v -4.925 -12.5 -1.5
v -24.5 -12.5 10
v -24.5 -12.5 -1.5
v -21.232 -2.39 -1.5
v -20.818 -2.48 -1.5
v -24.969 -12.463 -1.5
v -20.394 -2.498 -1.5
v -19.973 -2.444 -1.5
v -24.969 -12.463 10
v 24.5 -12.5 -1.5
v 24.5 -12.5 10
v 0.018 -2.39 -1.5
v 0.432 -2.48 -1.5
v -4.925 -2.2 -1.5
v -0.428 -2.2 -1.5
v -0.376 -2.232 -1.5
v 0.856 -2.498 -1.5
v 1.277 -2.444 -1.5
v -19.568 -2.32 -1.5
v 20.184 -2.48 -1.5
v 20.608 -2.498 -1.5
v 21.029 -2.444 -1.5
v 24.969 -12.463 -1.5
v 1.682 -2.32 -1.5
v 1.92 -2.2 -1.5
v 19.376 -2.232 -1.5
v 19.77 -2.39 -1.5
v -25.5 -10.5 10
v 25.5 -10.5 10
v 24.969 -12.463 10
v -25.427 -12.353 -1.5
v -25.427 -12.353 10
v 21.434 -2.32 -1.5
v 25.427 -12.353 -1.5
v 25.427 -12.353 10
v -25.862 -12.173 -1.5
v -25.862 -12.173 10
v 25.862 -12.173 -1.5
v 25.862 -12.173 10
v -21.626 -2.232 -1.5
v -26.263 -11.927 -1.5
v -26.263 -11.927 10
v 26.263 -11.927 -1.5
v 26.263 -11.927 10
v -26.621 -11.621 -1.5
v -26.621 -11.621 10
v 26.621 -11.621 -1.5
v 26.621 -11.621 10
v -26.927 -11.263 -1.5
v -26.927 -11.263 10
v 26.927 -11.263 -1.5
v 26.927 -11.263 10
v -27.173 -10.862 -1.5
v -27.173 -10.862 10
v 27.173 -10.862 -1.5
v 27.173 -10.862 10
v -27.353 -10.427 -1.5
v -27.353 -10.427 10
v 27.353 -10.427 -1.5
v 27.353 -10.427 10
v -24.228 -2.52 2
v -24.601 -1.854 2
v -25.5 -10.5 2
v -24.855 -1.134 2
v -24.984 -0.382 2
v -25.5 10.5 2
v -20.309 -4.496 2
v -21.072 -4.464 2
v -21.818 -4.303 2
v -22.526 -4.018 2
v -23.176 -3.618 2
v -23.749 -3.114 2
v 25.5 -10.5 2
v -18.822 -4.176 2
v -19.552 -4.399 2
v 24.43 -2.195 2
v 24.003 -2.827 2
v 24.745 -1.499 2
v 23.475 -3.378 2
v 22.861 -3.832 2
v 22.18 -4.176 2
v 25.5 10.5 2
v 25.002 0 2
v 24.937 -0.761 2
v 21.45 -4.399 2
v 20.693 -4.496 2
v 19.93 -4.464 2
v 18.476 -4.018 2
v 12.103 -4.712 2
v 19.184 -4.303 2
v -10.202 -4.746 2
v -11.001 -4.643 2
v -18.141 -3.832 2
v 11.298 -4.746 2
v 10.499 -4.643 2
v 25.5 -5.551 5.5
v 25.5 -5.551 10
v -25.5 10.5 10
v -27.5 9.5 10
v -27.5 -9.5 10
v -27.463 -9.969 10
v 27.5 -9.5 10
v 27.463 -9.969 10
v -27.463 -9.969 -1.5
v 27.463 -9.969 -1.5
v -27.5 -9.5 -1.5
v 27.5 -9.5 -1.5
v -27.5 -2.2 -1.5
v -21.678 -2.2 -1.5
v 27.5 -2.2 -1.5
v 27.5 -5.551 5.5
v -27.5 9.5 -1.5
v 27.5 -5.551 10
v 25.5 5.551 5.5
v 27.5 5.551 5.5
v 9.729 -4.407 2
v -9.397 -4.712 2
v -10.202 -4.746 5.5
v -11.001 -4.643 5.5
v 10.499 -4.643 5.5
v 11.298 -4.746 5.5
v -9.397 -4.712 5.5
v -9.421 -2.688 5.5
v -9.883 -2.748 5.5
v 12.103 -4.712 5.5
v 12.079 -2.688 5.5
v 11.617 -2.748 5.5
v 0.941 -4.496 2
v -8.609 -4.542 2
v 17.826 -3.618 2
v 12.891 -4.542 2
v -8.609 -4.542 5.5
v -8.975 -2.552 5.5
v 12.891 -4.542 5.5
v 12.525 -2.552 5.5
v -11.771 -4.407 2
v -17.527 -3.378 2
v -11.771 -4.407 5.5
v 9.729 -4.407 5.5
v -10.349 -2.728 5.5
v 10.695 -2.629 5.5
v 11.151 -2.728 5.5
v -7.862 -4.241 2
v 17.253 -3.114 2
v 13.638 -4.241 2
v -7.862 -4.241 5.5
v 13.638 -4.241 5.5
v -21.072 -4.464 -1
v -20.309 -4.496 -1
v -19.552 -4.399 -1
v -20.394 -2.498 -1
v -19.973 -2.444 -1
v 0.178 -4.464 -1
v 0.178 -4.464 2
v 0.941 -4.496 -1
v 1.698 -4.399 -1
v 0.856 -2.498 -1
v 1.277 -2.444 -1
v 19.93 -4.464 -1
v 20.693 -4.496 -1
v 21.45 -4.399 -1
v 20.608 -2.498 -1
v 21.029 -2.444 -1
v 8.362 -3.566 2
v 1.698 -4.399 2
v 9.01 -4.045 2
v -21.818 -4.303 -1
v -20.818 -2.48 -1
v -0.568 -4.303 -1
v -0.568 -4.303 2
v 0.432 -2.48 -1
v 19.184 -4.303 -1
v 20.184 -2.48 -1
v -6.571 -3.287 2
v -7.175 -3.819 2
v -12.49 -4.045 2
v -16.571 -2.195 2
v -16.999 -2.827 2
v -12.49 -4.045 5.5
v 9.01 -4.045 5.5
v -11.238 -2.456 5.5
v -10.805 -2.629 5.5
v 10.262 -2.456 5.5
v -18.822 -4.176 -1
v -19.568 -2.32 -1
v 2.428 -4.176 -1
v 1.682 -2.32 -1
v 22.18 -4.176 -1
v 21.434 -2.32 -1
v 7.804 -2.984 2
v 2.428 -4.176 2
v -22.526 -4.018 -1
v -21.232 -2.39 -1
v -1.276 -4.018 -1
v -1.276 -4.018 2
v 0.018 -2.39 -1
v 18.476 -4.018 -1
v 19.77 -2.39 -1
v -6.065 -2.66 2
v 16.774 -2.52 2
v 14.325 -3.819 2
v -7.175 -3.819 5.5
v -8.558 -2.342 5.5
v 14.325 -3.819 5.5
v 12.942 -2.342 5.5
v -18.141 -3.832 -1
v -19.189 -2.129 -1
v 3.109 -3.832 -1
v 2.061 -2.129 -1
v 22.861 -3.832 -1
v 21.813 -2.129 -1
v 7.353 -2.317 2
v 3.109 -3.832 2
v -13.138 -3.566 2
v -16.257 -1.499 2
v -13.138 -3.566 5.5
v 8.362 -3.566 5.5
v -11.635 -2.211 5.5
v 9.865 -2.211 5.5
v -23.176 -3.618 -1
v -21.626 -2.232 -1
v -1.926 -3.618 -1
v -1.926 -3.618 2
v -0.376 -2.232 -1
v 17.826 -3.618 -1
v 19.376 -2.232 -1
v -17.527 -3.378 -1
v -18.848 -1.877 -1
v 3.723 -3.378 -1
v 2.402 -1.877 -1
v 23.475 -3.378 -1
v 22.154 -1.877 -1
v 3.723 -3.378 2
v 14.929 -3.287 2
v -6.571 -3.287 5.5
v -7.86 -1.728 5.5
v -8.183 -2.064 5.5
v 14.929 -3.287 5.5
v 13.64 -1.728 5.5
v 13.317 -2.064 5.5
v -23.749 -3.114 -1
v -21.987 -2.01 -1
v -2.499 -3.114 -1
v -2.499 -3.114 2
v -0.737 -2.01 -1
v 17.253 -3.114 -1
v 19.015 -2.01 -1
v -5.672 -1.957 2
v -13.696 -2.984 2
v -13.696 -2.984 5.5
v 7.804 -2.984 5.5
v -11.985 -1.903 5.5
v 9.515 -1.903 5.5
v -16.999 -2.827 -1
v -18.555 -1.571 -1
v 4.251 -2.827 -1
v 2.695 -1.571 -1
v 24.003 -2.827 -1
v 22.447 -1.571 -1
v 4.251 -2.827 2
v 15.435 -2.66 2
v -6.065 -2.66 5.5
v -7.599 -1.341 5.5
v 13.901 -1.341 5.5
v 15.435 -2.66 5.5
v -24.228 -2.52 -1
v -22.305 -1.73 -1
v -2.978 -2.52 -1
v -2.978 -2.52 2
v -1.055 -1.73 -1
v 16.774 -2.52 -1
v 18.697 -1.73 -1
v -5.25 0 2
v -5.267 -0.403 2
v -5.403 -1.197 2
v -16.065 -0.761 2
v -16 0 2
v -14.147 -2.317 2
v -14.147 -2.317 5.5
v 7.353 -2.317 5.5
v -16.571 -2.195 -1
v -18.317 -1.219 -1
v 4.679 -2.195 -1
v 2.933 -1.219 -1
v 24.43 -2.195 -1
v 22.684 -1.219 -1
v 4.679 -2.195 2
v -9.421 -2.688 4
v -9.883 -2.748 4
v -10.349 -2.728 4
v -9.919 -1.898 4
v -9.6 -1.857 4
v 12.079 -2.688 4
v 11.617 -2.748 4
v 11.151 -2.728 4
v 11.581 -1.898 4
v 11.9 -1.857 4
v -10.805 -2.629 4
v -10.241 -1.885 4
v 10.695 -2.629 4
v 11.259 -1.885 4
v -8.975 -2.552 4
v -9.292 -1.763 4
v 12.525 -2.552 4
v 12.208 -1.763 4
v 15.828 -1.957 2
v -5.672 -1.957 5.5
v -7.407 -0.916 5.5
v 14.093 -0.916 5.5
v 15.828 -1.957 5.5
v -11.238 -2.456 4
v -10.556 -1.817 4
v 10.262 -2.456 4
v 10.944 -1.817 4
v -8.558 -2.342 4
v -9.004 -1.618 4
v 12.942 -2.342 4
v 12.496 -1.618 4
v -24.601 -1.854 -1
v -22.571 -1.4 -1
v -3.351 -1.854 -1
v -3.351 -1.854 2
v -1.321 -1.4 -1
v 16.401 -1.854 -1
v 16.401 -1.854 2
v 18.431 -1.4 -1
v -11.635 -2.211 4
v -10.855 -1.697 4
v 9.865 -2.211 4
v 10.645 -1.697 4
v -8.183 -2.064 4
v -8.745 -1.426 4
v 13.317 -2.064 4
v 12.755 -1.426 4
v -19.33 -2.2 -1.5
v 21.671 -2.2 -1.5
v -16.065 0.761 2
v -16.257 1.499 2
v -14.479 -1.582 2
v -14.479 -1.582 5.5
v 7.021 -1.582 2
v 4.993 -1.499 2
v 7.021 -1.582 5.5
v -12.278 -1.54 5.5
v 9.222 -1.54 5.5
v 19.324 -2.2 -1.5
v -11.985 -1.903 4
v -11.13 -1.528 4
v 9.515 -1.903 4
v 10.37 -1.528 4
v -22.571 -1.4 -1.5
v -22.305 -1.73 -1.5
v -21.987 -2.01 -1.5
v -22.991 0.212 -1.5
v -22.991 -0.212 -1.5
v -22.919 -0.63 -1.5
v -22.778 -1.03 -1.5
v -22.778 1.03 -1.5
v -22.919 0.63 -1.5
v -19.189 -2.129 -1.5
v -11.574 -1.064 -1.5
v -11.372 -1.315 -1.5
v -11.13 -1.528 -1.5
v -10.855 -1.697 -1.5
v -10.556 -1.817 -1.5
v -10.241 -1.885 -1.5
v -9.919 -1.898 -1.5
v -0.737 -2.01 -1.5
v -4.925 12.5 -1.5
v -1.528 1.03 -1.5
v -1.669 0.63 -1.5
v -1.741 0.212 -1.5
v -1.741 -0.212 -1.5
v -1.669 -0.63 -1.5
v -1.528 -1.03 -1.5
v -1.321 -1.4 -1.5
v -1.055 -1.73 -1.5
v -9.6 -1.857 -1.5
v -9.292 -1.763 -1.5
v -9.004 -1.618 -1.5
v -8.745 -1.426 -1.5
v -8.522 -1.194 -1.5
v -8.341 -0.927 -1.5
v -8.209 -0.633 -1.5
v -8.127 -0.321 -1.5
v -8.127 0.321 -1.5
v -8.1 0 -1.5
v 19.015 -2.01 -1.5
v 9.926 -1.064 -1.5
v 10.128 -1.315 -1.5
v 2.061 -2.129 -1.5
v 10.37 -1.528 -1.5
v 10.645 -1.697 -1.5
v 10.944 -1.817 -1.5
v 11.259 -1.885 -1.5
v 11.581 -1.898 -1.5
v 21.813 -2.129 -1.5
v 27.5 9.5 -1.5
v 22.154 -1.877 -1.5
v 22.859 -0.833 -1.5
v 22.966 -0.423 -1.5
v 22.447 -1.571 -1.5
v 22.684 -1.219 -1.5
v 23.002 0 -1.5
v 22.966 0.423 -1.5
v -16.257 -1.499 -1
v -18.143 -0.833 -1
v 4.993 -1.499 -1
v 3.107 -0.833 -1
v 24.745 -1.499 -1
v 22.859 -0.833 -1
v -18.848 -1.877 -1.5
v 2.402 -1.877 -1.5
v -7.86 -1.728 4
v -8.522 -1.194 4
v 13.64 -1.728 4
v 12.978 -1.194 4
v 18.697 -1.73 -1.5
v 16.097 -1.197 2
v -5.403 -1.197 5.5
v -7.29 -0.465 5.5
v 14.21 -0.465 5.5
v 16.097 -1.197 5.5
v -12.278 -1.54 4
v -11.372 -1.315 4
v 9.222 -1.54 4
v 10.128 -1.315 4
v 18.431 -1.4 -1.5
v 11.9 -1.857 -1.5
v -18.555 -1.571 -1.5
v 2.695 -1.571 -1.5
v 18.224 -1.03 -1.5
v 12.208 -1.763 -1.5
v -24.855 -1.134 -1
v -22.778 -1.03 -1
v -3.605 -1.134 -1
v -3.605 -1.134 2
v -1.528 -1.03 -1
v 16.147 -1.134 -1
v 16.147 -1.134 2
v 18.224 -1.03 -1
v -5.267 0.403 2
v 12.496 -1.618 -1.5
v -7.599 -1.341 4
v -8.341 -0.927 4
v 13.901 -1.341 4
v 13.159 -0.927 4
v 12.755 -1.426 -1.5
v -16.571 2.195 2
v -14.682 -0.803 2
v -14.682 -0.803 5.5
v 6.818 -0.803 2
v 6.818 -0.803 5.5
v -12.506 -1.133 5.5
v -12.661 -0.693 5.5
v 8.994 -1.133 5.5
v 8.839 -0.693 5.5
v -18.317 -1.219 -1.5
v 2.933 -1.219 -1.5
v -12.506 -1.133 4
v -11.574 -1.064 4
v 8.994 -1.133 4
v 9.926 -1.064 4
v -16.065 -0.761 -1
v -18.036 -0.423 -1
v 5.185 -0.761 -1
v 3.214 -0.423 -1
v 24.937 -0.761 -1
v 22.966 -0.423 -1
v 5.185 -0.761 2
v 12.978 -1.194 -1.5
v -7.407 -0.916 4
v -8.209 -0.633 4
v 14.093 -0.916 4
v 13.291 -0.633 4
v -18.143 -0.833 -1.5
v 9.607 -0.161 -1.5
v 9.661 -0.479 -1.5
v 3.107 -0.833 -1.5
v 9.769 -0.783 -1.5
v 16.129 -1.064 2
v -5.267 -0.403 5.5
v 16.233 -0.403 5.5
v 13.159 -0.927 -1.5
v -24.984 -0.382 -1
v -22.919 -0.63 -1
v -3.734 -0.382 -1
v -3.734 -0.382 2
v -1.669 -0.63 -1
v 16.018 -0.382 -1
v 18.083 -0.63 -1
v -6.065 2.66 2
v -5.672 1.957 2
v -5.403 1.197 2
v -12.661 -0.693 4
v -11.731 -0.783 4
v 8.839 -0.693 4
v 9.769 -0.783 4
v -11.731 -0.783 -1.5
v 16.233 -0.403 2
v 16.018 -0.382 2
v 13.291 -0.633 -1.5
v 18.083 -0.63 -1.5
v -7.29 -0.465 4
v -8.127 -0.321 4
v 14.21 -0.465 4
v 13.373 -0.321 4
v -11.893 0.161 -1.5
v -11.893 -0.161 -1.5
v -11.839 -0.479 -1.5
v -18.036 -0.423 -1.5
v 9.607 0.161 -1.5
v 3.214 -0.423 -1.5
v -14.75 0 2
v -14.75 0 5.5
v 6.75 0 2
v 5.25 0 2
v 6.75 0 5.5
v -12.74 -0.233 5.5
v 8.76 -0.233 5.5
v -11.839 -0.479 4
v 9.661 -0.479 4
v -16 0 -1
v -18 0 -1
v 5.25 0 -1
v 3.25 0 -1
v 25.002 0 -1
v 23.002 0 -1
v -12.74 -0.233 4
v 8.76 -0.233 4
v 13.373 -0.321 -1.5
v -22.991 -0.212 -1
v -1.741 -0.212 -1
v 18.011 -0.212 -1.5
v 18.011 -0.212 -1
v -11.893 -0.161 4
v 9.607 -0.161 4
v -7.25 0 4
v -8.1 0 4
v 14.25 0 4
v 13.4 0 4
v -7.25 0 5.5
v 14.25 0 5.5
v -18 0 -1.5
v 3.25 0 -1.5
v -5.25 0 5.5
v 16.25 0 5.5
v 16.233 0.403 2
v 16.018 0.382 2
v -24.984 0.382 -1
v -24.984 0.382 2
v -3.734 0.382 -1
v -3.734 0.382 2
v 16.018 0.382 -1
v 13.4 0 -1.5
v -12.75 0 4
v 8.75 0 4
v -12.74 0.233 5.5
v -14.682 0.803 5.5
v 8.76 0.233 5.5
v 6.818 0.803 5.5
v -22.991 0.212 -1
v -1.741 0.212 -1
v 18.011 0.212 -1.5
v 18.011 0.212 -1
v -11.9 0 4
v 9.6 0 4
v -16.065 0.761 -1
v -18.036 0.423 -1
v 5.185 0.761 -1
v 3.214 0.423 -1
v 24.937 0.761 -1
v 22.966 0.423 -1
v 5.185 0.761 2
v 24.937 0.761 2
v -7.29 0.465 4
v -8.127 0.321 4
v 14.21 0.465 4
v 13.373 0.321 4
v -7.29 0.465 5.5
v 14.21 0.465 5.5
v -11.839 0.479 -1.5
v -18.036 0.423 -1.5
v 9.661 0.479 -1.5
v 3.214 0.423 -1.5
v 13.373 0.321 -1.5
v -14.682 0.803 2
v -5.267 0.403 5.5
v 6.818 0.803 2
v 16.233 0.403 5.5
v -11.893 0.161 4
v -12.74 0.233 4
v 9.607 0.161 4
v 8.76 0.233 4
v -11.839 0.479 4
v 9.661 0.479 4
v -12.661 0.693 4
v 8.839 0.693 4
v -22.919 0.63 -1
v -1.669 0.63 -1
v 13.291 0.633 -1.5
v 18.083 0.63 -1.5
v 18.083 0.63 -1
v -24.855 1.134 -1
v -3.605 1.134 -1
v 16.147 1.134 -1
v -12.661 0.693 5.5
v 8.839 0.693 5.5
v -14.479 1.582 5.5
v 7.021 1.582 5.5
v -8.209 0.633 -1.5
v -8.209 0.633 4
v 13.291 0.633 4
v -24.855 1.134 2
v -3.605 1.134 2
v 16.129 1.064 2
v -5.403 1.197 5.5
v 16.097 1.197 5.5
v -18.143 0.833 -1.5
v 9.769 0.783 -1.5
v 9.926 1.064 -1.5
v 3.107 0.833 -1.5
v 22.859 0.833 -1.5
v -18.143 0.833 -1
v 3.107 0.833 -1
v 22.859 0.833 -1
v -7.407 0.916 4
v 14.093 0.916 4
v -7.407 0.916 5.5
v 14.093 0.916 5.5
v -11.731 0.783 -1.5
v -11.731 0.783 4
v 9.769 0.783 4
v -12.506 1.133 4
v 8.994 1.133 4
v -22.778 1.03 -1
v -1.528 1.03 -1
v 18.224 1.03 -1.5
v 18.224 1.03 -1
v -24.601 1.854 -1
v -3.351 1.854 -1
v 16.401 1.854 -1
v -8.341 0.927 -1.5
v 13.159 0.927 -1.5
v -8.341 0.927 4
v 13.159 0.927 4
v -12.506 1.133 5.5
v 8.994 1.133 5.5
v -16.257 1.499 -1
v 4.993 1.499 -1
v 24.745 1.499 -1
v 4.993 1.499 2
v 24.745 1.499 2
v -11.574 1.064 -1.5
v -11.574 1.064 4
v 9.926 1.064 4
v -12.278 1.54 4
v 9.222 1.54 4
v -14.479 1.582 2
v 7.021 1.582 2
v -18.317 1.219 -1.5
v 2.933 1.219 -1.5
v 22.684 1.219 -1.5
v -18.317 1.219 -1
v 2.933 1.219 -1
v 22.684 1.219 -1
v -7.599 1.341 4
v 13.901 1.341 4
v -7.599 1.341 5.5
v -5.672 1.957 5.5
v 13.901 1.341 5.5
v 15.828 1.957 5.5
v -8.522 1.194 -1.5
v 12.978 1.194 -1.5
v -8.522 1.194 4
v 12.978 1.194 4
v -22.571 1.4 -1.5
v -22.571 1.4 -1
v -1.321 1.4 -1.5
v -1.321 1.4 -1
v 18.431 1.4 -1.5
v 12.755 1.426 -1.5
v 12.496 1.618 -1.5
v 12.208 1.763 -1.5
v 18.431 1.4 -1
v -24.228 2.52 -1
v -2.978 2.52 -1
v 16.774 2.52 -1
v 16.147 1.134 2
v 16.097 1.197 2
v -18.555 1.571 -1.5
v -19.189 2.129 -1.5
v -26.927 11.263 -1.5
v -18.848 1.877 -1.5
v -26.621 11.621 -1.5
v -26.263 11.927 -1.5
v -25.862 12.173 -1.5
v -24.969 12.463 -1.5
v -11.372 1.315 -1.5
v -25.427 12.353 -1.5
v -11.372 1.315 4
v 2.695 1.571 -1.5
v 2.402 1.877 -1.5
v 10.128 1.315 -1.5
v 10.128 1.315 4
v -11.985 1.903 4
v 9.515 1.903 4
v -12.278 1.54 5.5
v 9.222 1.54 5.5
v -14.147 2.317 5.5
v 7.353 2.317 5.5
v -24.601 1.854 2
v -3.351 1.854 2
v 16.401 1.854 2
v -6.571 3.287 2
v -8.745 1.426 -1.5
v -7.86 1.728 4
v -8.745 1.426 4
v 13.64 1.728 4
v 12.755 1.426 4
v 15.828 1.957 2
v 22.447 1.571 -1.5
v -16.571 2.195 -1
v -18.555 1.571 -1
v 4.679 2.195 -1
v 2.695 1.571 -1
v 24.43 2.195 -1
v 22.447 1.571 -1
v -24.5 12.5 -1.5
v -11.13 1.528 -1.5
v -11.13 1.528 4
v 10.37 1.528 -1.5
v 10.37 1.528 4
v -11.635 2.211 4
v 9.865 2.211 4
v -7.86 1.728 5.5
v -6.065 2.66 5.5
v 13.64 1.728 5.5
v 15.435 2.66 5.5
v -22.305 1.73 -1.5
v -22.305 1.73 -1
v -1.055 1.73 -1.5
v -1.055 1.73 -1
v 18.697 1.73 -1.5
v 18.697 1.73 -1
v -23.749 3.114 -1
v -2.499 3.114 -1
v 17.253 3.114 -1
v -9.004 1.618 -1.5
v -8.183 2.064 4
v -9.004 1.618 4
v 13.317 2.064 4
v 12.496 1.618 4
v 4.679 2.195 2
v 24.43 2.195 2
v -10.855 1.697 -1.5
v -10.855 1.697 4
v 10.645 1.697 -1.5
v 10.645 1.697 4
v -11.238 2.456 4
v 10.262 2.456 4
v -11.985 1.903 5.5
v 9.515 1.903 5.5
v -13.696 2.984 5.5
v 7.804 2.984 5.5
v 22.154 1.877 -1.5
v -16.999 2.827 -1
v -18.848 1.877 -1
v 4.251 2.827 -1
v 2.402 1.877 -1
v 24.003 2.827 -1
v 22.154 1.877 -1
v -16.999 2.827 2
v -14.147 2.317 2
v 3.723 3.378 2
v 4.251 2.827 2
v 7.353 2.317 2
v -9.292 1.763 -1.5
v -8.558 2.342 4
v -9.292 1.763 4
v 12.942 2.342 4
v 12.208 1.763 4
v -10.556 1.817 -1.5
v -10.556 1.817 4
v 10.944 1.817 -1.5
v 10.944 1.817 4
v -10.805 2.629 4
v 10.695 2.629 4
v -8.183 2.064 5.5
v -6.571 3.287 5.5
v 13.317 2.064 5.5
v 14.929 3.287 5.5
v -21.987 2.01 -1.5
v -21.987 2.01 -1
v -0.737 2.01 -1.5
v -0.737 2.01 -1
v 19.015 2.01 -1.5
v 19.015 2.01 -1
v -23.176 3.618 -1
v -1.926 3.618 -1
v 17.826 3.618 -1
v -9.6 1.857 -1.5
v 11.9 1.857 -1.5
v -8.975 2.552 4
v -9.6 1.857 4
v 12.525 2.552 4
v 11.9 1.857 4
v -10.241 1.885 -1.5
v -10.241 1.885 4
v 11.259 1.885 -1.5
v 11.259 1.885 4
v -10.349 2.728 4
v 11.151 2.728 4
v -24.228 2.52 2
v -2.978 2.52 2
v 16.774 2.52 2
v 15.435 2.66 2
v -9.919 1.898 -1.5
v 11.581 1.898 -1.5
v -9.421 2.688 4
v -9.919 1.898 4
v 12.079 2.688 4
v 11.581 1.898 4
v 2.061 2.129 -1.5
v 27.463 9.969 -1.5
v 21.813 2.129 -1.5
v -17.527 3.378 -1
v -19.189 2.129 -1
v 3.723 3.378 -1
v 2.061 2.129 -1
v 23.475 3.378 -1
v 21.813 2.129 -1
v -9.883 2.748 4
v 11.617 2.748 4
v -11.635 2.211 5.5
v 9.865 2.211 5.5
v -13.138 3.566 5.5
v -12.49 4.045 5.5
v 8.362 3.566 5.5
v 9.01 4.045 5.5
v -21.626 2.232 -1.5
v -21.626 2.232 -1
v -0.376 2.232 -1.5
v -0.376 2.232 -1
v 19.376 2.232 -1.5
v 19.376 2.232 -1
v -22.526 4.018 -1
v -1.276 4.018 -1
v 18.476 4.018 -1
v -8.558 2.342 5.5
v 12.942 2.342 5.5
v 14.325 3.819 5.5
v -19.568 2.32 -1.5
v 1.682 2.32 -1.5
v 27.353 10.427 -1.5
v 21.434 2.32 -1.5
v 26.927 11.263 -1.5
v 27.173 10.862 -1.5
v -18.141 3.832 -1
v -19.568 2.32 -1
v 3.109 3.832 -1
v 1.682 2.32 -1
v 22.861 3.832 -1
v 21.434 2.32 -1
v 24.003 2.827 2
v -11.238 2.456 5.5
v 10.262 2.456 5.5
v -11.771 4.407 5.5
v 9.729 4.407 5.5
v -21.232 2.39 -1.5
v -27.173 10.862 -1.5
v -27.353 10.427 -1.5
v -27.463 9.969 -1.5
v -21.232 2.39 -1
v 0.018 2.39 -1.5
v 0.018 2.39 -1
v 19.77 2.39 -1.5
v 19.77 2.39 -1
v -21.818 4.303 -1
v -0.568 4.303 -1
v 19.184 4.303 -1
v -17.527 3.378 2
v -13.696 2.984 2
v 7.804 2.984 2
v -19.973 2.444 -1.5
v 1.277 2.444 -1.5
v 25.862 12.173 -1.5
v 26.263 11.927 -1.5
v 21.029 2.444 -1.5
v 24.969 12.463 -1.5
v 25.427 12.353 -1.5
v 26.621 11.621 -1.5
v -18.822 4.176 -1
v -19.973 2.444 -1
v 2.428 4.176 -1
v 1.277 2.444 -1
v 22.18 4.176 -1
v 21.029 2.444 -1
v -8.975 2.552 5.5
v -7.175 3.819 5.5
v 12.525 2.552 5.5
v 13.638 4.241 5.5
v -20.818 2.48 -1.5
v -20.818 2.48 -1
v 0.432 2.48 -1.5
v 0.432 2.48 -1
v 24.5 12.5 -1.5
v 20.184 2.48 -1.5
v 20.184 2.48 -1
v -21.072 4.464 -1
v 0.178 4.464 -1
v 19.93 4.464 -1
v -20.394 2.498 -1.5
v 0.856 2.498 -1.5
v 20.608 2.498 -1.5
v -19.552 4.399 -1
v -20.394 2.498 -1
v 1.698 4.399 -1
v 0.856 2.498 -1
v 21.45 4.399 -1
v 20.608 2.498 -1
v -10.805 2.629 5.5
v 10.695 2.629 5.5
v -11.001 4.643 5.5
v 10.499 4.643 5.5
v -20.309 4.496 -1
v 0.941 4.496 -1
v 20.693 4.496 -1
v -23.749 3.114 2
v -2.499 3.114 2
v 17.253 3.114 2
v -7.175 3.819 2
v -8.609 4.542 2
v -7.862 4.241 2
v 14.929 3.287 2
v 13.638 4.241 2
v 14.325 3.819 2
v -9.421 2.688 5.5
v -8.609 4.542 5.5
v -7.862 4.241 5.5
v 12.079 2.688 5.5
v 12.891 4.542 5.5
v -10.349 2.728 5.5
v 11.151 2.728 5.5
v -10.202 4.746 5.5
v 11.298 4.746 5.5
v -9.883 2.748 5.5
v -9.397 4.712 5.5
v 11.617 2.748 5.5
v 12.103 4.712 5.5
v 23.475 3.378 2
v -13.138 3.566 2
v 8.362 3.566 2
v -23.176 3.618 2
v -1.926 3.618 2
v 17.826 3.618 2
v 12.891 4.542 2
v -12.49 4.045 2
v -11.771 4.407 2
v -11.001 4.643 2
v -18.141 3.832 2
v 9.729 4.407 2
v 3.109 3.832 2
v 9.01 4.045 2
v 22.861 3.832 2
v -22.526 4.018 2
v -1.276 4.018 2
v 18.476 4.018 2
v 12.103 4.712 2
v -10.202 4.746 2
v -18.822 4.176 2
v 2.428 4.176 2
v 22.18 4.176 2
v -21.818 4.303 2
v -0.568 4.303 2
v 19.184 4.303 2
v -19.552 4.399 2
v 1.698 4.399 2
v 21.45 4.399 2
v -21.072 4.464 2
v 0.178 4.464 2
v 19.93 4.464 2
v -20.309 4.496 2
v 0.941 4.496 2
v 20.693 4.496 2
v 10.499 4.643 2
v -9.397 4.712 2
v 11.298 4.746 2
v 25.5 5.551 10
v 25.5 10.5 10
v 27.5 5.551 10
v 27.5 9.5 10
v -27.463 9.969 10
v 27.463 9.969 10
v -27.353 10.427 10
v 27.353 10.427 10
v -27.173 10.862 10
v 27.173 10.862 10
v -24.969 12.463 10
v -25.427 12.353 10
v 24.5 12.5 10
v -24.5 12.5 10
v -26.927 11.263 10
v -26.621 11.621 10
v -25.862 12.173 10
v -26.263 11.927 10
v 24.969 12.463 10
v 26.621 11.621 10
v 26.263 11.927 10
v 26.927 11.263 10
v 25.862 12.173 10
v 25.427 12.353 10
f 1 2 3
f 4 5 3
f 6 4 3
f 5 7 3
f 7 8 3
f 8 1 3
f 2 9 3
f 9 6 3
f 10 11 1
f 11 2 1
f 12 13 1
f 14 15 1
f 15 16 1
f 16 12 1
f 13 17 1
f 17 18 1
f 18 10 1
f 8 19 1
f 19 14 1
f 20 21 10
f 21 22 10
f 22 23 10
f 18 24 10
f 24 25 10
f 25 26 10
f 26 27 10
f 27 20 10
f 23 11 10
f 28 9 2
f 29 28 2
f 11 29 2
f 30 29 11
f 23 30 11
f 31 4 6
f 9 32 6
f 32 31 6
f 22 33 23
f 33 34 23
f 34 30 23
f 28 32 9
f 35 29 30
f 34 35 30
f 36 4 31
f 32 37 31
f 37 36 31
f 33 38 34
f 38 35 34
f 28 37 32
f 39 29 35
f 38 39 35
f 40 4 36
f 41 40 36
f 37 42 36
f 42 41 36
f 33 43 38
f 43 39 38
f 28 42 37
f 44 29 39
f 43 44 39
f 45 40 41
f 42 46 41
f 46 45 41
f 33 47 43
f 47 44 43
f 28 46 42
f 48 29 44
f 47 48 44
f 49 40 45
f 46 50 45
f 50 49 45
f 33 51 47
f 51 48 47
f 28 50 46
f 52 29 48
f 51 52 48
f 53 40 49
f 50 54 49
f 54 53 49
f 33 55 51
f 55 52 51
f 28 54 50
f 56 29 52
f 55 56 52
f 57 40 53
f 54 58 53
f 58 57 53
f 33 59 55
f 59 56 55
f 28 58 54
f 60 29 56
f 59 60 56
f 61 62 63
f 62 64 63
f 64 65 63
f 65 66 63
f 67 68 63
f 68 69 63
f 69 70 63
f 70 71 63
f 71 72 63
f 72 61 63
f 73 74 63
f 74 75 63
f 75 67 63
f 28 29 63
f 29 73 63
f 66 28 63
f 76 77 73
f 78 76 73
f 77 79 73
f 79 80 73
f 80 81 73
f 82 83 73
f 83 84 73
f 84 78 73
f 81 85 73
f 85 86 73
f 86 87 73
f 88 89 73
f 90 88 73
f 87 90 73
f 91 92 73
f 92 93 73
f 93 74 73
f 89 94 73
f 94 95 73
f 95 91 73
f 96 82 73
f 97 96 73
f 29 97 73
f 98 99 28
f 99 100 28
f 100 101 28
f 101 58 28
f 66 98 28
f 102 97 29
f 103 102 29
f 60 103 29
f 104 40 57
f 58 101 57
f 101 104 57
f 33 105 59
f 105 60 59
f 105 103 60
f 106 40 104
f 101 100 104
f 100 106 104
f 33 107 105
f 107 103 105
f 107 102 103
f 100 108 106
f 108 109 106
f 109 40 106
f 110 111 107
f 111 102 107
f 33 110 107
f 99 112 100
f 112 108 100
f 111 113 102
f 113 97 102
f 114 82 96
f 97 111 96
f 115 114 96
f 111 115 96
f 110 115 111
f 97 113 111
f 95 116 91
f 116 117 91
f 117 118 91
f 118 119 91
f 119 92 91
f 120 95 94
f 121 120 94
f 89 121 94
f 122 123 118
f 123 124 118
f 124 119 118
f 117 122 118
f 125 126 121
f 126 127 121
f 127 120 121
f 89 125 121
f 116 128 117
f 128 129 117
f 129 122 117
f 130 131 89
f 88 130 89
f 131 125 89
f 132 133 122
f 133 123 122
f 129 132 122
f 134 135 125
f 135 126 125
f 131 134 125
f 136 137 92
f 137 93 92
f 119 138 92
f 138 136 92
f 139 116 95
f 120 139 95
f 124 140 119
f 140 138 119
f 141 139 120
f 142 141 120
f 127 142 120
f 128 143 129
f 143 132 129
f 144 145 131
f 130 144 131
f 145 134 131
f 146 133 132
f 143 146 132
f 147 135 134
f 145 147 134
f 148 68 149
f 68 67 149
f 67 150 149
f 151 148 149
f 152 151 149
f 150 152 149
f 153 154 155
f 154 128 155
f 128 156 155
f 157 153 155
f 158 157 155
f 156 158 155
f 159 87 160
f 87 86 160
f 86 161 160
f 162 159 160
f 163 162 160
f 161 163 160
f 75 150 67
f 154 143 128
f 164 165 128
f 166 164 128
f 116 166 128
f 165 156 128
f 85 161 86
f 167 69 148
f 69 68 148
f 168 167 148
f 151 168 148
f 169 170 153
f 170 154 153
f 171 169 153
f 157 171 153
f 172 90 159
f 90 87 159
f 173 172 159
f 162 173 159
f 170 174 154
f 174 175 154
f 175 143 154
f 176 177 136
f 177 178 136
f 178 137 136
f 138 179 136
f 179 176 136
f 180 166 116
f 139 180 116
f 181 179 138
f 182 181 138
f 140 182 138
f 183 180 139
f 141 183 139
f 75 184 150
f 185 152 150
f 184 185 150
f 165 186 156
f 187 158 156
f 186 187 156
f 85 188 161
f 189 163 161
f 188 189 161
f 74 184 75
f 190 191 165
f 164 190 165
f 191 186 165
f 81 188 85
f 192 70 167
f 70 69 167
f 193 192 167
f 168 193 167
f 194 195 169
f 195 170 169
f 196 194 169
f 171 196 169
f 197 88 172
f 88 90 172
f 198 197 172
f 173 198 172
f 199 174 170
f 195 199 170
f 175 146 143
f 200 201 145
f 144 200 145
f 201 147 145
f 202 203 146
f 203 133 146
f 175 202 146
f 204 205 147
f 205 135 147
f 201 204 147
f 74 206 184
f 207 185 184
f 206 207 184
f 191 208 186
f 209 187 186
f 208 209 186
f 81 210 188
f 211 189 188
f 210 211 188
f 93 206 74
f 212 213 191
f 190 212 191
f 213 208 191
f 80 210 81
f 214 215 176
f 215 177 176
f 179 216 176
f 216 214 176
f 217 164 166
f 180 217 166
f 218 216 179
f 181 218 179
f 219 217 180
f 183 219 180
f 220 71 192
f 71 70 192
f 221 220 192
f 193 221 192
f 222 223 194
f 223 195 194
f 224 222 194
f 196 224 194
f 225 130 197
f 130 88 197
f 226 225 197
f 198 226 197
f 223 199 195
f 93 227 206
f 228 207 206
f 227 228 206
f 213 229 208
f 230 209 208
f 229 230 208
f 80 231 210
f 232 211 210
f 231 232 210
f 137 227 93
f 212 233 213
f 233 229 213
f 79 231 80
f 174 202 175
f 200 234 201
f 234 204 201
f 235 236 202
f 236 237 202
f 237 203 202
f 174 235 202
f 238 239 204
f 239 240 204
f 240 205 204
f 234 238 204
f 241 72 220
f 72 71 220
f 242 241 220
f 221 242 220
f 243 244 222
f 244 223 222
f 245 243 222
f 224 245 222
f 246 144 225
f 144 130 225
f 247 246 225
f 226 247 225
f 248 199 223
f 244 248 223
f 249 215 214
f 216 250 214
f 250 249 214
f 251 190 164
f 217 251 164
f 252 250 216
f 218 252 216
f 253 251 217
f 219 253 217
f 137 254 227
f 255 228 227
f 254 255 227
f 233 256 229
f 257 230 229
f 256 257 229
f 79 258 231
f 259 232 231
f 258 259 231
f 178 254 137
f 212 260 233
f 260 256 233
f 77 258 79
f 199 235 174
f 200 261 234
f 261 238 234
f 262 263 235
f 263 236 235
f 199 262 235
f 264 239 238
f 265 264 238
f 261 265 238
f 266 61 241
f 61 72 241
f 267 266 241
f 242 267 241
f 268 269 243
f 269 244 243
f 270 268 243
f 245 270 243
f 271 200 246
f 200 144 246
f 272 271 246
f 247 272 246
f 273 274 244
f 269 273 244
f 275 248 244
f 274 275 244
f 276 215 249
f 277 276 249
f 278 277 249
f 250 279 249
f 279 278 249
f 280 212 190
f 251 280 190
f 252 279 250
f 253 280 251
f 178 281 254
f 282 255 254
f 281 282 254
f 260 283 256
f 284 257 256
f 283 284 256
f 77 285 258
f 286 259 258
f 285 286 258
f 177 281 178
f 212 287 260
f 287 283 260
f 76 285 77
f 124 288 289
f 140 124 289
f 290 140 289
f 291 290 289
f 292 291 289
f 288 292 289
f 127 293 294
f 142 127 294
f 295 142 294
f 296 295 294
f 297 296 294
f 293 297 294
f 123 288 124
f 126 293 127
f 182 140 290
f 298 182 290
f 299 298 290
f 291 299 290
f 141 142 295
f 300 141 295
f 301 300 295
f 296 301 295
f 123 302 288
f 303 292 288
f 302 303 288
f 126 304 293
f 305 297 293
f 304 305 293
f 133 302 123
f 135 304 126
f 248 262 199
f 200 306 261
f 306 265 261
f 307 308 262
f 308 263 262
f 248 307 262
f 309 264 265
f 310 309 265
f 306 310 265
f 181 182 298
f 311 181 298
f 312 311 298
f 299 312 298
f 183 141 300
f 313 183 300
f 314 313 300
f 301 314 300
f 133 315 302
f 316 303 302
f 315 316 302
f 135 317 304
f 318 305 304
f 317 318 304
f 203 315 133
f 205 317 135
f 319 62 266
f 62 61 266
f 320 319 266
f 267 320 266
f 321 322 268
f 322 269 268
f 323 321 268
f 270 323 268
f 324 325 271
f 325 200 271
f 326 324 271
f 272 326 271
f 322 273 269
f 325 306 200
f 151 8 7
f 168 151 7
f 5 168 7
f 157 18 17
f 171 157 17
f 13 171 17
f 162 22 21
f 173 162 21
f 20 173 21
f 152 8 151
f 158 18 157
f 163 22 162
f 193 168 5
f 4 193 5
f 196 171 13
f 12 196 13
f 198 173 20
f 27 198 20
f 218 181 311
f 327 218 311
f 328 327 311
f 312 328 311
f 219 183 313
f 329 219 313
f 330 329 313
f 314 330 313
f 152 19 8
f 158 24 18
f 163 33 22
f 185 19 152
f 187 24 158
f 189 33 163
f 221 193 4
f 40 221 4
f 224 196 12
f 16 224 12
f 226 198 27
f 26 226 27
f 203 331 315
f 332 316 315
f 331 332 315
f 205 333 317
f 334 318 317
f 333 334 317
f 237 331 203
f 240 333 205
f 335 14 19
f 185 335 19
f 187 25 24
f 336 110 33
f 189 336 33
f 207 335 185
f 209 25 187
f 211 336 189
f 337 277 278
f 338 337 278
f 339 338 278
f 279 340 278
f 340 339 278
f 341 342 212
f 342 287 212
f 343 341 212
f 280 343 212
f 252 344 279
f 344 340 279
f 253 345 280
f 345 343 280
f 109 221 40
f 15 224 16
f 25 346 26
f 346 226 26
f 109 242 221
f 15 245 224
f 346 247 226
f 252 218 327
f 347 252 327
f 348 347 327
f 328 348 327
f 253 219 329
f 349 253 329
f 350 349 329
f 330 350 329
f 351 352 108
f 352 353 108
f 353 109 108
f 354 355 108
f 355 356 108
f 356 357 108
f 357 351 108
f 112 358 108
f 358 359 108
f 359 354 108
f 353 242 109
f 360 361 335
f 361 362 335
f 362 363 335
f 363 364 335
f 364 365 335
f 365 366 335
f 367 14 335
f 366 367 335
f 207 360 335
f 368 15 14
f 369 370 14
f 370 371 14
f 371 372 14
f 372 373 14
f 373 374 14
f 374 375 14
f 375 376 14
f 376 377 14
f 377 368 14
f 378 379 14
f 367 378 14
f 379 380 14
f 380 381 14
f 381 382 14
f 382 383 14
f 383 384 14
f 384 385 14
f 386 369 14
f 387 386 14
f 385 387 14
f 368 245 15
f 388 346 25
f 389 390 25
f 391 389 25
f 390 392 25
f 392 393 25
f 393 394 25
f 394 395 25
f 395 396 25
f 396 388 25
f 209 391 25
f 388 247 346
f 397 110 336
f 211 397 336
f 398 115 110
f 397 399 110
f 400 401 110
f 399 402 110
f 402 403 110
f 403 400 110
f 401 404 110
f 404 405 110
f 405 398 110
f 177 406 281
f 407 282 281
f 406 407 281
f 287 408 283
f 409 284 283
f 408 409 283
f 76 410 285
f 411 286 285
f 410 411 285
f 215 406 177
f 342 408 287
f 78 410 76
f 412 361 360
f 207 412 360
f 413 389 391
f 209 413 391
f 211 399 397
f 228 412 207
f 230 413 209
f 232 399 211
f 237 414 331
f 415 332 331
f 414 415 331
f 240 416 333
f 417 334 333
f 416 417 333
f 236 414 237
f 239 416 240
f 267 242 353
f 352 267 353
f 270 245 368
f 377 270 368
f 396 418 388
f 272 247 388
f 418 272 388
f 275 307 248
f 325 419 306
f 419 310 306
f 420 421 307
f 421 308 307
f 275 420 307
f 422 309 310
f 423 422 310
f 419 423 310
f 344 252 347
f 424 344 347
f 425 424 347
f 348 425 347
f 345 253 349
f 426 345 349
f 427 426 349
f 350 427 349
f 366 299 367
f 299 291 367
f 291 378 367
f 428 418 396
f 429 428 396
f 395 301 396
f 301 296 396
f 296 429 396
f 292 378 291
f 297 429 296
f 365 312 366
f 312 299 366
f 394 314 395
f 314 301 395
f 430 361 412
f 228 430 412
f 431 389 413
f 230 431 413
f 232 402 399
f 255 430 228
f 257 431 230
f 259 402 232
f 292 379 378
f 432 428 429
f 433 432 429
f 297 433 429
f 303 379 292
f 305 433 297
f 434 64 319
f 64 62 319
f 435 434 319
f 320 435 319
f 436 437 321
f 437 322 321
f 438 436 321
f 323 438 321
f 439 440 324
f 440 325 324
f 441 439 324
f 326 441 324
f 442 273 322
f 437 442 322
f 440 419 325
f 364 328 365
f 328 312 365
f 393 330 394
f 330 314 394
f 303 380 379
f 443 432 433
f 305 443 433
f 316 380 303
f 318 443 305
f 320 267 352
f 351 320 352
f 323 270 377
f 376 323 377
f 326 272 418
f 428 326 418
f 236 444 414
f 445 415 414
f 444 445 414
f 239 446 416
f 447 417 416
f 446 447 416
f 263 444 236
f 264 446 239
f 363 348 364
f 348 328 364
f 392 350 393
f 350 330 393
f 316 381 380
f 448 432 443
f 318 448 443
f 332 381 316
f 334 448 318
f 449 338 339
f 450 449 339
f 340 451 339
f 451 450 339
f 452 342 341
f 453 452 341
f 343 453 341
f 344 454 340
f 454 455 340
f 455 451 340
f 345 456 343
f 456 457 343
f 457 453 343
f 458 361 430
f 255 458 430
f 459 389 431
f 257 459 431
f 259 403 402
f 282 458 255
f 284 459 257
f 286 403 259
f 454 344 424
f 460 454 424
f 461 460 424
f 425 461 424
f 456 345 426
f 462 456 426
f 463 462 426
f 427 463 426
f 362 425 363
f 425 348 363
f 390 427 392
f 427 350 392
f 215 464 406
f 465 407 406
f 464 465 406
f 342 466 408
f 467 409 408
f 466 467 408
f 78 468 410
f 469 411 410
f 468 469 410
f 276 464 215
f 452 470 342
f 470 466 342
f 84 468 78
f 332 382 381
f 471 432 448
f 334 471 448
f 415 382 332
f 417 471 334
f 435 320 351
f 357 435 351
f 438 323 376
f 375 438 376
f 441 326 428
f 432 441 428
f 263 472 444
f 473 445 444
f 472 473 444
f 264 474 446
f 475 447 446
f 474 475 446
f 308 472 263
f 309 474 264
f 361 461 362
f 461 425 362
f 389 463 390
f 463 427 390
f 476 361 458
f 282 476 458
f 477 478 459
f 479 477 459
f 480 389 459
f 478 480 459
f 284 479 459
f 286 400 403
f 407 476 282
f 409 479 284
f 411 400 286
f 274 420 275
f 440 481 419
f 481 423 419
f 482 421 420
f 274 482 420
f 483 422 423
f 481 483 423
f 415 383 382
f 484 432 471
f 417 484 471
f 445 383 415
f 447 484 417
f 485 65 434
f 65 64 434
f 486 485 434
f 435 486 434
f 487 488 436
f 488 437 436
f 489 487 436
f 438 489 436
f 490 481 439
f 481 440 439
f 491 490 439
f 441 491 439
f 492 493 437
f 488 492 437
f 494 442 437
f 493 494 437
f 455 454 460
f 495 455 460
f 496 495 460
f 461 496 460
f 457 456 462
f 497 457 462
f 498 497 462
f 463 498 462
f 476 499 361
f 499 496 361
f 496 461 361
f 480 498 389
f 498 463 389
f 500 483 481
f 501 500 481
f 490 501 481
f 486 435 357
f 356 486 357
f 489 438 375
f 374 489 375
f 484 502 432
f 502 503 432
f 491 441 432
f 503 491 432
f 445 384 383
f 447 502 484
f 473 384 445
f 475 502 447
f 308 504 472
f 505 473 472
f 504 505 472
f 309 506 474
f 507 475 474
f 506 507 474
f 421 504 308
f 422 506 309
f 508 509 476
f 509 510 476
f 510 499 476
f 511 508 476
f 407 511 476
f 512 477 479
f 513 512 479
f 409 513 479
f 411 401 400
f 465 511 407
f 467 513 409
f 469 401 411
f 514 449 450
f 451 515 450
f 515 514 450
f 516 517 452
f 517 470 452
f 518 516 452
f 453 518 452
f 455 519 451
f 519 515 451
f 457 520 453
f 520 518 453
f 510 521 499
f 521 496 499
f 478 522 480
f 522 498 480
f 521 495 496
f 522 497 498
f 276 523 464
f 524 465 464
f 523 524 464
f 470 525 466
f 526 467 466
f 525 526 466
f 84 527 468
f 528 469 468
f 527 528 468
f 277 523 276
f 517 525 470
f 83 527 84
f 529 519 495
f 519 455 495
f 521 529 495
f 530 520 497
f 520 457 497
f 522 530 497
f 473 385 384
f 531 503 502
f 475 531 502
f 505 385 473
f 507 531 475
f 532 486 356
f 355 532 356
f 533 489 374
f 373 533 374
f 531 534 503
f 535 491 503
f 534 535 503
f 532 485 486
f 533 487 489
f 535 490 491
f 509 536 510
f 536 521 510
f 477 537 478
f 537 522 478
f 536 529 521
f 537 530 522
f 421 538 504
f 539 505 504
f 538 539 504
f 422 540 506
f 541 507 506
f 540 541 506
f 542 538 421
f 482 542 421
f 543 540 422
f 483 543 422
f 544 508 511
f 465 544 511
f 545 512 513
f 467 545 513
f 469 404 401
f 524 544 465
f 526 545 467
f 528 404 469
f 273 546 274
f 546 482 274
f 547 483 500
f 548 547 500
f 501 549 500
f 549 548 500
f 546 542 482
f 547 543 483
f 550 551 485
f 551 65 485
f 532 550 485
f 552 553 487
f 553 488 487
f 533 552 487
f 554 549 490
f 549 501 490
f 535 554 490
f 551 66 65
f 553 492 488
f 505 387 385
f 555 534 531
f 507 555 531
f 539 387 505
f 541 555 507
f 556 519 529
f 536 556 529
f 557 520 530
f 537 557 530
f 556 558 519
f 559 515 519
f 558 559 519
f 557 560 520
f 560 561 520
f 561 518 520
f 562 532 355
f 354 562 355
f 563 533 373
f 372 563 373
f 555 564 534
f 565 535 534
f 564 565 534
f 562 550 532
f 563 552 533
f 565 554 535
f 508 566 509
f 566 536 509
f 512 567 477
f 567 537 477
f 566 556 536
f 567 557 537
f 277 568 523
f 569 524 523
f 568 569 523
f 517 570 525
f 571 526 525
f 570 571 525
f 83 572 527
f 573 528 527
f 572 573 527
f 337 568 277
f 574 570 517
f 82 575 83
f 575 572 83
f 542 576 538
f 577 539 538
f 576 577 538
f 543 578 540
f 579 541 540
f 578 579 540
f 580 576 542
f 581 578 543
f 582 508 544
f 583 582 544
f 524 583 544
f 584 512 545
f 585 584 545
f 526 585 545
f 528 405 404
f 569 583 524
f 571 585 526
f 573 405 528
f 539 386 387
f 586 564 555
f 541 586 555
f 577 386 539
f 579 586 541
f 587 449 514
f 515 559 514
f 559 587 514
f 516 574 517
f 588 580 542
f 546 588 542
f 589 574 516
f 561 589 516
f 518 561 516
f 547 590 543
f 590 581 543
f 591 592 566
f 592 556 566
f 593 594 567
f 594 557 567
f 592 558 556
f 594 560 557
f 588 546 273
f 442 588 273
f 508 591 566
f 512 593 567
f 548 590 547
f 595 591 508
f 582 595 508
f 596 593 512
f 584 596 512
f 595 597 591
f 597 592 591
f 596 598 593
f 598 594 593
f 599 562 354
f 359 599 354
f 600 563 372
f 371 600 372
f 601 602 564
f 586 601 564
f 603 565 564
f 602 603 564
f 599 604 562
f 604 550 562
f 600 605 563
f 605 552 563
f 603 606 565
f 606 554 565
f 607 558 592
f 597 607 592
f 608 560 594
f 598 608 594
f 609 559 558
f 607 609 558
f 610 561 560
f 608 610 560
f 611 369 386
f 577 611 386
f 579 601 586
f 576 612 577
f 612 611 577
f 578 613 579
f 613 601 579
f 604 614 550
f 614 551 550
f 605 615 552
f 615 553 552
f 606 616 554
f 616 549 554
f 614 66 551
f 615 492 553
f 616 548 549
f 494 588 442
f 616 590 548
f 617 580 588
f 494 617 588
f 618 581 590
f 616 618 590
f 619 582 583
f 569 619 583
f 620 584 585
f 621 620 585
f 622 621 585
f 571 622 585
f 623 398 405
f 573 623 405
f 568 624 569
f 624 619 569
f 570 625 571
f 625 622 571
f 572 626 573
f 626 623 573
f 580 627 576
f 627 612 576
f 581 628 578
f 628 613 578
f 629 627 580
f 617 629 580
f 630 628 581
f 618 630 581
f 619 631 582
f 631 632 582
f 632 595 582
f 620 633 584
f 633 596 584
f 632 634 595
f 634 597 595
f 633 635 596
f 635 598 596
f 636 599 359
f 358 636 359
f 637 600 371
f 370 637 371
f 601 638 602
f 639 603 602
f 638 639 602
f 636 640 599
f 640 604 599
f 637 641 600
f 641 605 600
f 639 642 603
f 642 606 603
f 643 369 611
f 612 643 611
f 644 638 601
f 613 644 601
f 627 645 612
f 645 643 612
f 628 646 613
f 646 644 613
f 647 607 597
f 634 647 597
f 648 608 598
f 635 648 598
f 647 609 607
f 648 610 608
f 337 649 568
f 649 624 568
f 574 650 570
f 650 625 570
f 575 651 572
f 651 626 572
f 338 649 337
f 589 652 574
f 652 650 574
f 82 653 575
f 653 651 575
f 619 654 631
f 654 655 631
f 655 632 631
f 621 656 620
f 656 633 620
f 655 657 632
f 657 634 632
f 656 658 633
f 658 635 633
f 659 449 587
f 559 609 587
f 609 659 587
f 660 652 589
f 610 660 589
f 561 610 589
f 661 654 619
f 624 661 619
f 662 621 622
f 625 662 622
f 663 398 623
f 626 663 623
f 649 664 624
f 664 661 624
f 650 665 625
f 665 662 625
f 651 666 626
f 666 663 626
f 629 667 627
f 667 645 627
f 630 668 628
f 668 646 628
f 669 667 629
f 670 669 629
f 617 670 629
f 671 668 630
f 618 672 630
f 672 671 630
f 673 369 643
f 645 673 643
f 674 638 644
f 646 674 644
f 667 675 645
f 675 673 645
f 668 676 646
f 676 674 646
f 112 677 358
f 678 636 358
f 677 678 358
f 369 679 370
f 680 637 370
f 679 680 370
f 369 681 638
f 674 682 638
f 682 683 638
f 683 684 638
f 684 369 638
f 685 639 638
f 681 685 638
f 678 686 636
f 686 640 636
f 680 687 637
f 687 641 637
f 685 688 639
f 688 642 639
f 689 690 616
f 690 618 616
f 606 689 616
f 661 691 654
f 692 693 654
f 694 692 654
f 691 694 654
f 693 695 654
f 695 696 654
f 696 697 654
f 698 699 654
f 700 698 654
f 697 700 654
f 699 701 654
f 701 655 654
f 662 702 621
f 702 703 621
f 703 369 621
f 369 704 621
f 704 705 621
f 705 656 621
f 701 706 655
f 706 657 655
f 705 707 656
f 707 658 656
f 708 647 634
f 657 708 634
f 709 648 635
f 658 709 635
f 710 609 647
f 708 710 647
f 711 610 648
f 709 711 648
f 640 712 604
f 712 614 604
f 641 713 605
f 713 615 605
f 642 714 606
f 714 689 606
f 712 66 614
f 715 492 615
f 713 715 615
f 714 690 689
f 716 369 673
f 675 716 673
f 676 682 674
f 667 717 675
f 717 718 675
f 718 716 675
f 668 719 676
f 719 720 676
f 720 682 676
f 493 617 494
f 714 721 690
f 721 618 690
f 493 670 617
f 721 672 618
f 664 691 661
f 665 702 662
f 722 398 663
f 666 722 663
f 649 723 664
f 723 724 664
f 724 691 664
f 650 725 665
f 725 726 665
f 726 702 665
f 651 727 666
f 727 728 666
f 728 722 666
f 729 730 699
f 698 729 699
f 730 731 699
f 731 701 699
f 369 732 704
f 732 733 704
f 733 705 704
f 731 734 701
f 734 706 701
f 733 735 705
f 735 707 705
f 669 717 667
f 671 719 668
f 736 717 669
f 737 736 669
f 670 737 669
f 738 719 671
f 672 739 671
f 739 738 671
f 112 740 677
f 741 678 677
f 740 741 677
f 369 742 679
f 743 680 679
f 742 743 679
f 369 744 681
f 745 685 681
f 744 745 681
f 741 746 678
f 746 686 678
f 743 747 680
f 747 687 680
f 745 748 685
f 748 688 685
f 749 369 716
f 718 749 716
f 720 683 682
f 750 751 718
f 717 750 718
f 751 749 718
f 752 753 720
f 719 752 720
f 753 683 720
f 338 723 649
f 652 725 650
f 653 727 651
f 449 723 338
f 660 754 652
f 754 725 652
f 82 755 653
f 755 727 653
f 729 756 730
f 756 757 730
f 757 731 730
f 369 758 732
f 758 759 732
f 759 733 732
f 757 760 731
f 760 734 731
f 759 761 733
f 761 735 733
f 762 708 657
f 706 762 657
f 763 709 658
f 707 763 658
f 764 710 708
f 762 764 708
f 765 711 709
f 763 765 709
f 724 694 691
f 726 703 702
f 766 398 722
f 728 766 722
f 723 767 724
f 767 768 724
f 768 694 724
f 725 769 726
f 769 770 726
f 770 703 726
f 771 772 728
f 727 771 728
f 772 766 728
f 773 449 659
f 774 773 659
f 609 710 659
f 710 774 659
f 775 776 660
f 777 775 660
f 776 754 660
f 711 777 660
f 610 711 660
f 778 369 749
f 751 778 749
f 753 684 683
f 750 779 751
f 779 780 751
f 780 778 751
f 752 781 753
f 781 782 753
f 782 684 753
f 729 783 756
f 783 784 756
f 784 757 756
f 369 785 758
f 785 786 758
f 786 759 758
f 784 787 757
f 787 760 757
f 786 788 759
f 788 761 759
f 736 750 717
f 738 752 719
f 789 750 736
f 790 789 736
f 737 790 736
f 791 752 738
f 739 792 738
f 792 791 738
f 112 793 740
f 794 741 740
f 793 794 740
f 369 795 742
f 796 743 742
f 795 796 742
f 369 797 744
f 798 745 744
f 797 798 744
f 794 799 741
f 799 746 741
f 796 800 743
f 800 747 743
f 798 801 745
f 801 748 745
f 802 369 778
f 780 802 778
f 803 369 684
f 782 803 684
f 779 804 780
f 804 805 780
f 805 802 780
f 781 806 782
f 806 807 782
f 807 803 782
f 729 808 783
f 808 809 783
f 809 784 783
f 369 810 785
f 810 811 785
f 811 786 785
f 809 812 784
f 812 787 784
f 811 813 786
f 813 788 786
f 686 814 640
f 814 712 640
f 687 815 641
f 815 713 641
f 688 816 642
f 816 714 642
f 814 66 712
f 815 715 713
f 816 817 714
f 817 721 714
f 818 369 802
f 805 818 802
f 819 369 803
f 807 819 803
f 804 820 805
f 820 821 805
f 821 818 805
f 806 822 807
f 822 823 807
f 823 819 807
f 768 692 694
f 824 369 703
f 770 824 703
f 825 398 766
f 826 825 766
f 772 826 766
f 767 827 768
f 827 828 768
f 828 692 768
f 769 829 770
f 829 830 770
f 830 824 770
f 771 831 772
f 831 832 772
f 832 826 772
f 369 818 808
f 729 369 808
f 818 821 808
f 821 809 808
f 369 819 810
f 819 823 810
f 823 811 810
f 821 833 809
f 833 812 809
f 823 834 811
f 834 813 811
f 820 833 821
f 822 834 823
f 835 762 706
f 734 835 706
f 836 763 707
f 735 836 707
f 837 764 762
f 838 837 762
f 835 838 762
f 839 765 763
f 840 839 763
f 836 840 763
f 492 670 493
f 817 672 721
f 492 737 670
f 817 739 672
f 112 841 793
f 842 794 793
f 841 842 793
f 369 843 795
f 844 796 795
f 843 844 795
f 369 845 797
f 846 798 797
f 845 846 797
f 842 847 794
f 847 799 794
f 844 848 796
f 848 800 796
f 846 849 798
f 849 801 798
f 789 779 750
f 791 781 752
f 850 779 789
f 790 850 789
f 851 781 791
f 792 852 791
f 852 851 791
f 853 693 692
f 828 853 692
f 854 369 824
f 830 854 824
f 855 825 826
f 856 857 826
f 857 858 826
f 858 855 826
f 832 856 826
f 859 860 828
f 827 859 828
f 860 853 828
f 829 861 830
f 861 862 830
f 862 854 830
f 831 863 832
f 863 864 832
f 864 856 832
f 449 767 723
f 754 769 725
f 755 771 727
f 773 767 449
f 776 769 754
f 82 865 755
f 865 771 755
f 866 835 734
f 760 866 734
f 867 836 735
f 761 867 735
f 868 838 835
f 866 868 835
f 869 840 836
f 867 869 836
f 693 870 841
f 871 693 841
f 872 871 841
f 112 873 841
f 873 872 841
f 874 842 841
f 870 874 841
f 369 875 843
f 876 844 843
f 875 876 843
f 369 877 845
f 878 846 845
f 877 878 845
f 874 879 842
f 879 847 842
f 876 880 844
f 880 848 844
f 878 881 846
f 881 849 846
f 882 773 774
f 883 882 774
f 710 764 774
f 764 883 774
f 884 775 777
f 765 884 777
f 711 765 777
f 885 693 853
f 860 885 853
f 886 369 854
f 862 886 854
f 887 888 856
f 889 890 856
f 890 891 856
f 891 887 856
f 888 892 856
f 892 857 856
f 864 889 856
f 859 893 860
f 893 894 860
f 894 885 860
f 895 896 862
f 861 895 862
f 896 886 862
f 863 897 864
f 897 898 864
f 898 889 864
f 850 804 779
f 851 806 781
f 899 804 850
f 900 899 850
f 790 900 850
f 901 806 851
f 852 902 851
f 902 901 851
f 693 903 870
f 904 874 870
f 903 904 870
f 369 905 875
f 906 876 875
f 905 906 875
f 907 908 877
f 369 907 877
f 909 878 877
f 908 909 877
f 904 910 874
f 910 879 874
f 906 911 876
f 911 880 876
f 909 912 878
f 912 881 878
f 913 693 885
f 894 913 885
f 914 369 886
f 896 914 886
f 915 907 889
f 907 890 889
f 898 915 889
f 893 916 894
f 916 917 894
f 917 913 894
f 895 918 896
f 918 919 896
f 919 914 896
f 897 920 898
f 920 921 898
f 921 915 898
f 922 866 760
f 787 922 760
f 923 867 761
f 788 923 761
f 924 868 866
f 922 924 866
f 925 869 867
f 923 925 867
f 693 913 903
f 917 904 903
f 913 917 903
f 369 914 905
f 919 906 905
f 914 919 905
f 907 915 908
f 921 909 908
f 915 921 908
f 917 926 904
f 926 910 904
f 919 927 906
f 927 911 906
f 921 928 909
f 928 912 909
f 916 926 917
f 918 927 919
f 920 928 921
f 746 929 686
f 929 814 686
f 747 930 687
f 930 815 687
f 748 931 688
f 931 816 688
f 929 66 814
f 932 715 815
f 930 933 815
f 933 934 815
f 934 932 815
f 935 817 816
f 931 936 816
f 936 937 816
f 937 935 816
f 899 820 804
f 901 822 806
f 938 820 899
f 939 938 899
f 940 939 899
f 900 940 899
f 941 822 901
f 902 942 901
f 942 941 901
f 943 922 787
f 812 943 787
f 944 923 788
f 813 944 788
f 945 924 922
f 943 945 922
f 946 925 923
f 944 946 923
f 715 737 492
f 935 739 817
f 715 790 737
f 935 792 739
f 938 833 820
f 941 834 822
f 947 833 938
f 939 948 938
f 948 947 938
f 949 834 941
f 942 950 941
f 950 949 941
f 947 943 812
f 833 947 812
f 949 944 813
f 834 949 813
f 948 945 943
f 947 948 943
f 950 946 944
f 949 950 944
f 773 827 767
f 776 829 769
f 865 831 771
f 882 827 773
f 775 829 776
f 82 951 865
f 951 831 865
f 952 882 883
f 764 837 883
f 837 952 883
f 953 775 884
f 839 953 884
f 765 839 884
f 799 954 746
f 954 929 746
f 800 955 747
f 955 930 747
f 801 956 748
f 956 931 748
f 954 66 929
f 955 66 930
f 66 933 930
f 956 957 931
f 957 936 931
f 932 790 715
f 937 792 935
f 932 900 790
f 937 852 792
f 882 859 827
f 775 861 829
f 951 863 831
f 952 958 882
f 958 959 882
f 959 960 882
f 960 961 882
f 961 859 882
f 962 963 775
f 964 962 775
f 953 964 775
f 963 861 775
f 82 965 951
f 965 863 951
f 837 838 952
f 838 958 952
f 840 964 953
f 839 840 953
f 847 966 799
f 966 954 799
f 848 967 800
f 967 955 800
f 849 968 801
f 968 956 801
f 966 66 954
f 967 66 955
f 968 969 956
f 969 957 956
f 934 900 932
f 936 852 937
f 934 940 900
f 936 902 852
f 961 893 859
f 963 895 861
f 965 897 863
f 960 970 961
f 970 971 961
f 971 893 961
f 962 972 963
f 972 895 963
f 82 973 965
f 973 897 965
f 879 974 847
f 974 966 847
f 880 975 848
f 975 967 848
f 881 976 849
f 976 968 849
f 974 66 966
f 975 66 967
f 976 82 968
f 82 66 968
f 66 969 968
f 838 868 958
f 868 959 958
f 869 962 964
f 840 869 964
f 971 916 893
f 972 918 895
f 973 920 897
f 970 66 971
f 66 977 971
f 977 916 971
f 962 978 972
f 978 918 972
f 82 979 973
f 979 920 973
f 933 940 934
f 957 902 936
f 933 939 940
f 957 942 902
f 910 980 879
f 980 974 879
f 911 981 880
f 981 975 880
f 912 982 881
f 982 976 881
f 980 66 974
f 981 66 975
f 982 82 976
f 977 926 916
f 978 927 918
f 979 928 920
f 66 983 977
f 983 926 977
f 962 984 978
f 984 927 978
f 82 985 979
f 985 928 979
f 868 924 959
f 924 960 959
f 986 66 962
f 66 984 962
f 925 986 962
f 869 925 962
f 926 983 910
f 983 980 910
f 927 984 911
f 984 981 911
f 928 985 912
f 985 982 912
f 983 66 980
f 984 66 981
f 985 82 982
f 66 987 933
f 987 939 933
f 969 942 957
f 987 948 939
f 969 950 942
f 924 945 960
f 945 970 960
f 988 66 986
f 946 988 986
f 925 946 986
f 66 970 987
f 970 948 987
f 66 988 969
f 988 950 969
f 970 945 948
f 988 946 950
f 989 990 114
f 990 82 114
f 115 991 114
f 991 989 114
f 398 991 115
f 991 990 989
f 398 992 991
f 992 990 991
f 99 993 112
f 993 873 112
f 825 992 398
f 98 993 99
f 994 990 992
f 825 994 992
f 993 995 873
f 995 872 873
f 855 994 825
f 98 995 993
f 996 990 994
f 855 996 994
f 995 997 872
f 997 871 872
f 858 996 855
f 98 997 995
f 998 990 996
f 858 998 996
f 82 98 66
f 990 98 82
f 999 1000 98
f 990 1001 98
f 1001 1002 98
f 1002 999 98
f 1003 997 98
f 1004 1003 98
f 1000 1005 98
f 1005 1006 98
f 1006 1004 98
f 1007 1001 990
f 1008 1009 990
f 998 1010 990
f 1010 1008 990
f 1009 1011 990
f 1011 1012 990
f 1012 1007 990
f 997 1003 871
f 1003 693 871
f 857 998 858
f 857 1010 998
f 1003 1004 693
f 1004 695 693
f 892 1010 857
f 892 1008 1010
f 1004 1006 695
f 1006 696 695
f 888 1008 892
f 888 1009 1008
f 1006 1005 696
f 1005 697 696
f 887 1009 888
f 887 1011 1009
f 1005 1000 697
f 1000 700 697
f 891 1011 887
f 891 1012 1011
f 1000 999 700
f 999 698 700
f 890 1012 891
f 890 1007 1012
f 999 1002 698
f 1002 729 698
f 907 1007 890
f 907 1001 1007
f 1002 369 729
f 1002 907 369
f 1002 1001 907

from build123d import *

# Parameters (mm, degrees)
CROQUIS1_W                   = 55
CROQUIS1_H                   = 25
CROQUIS1_R                   = 2.75
SALIENTE_EXTRUIR1_DEPTH      = 2
SALIENTE_EXTRUIR1_DEPTH_BACK = 1.5
CROQUIS2_R                   = 4.75
CROQUIS2_R_2                 = 2.75
SALIENTE_EXTRUIR2_DEPTH      = 3.5
CROQUIS3_W                   = 55
CROQUIS3_H                   = 25
CROQUIS3_W_2                 = 51
CROQUIS3_H_2                 = 21
SALIENTE_EXTRUIR3_DEPTH      = 8
REDONDEO1_R                  = 3
CROQUIS5_W                   = 2
CROQUIS5_H                   = 11.102083366
CORTAR_EXTRUIR1_DEPTH        = 6
CROQUIS8_R                   = 4.5
CORTAR_EXTRUIR4_DEPTH        = 3
CROQUIS11_R                  = 2.75
SALIENTE_EXTRUIR5_DEPTH      = 5.5
CROQUIS12_R                  = 1.9
CORTAR_EXTRUIR11_DEPTH       = 9
CORTAR_EXTRUIR11_DEPTH_BACK  = 4.5
CROQUIS13_R                  = 2.5
CORTAR_EXTRUIR12_DEPTH       = 4.5
CROQUIS14_W                  = 1.5
CROQUIS14_H                  = 11.102083366
SALIENTE_EXTRUIR6_DEPTH      = 2


with BuildPart() as part:
    # Croquis1 → Saliente-Extruir1 (new body, two sides)
    with BuildSketch(Plane.XY) as saliente_extruir1_sk:
        Rectangle(CROQUIS1_W, CROQUIS1_H)
        with Locations((-10, 0)):
            Circle(CROQUIS1_R, mode=Mode.SUBTRACT)
        with Locations((11.5, 0)):
            Circle(CROQUIS1_R, mode=Mode.SUBTRACT)
    extrude(amount=SALIENTE_EXTRUIR1_DEPTH)
    extrude(saliente_extruir1_sk.sketch, amount=-SALIENTE_EXTRUIR1_DEPTH_BACK)

    # Croquis2 → Saliente-Extruir2 (add)
    with BuildSketch(Plane.XY.offset(2)):
        with Locations((-10, 0)):
            Circle(CROQUIS2_R)
        with Locations((-10, 0)):
            Circle(CROQUIS2_R_2, mode=Mode.SUBTRACT)
        with Locations((11.5, 0)):
            Circle(CROQUIS2_R)
        with Locations((11.5, 0)):
            Circle(CROQUIS2_R_2, mode=Mode.SUBTRACT)
    extrude(amount=SALIENTE_EXTRUIR2_DEPTH)

    # Croquis3 → Saliente-Extruir3 (add)
    with BuildSketch(Plane.XY.offset(2)):
        Rectangle(CROQUIS3_W, CROQUIS3_H)
        Rectangle(CROQUIS3_W_2, CROQUIS3_H_2, mode=Mode.SUBTRACT)
    extrude(amount=SALIENTE_EXTRUIR3_DEPTH)

    # Redondeo1
    redondeo1_edges = [part.edges().sort_by_distance(p)[0] for p in [
        (27.5, -12.5, 4.25),
        (-27.5, -12.5, 4.25),
        (-27.5, 12.5, 4.25),
        (27.5, 12.5, 4.25),
    ]]
    fillet(redondeo1_edges, radius=REDONDEO1_R)

    # Croquis5 → Cortar-Extruir1 (cut)
    with BuildSketch(Plane.XY.offset(10)):
        with Locations((26.5, 0)):
            Rectangle(CROQUIS5_W, CROQUIS5_H)
    extrude(amount=-CORTAR_EXTRUIR1_DEPTH, mode=Mode.SUBTRACT)

    # Croquis8 → Cortar-Extruir4 (cut)
    with BuildSketch(Plane.XY.offset(2)):
        with Locations((0.75, 0)):
            Circle(CROQUIS8_R)
        with Locations((-20.5, 0)):
            Circle(CROQUIS8_R)
        with Locations((20.501890269, 0)):
            Circle(CROQUIS8_R)
    extrude(amount=-CORTAR_EXTRUIR4_DEPTH, mode=Mode.SUBTRACT)

    # Croquis11 → Saliente-Extruir5 (add)
    with BuildSketch(Plane(origin=(0, 0, -1.5), x_dir=(-1, 0, 0), z_dir=(0, 0, -1))):
        with Locations((-11.5, 0)):
            Circle(CROQUIS11_R)
        with Locations((10, 0)):
            Circle(CROQUIS11_R)
    extrude(amount=-SALIENTE_EXTRUIR5_DEPTH)

    # Croquis12 → Cortar-Extruir11 (cut, two sides)
    with BuildSketch(Plane.XY.offset(2)) as cortar_extruir11_sk:
        with Locations((-10, 0)):
            Circle(CROQUIS12_R)
        with Locations((11.5, 0)):
            Circle(CROQUIS12_R)
    extrude(amount=CORTAR_EXTRUIR11_DEPTH, mode=Mode.SUBTRACT)
    extrude(cortar_extruir11_sk.sketch, amount=-CORTAR_EXTRUIR11_DEPTH_BACK, mode=Mode.SUBTRACT)

    # Croquis13 → Cortar-Extruir12 (cut, through all)
    with BuildSketch(Plane.XY.offset(2)):
        with Locations((20.501890269, 0)):
            Circle(CROQUIS13_R)
        with Locations((0.75, 0)):
            Circle(CROQUIS13_R)
        with Locations((-20.5, 0)):
            Circle(CROQUIS13_R)
    extrude(amount=-CORTAR_EXTRUIR12_DEPTH, mode=Mode.SUBTRACT)

    # Croquis14 → Saliente-Extruir6 (add)
    with BuildSketch(Plane(origin=(27.5, 0, 0), x_dir=(0, 0, -1), z_dir=(1, 0, 0))):
        with Locations((-4.75, 0)):
            Rectangle(CROQUIS14_W, CROQUIS14_H)
    extrude(amount=-SALIENTE_EXTRUIR6_DEPTH)


solid = part.part
